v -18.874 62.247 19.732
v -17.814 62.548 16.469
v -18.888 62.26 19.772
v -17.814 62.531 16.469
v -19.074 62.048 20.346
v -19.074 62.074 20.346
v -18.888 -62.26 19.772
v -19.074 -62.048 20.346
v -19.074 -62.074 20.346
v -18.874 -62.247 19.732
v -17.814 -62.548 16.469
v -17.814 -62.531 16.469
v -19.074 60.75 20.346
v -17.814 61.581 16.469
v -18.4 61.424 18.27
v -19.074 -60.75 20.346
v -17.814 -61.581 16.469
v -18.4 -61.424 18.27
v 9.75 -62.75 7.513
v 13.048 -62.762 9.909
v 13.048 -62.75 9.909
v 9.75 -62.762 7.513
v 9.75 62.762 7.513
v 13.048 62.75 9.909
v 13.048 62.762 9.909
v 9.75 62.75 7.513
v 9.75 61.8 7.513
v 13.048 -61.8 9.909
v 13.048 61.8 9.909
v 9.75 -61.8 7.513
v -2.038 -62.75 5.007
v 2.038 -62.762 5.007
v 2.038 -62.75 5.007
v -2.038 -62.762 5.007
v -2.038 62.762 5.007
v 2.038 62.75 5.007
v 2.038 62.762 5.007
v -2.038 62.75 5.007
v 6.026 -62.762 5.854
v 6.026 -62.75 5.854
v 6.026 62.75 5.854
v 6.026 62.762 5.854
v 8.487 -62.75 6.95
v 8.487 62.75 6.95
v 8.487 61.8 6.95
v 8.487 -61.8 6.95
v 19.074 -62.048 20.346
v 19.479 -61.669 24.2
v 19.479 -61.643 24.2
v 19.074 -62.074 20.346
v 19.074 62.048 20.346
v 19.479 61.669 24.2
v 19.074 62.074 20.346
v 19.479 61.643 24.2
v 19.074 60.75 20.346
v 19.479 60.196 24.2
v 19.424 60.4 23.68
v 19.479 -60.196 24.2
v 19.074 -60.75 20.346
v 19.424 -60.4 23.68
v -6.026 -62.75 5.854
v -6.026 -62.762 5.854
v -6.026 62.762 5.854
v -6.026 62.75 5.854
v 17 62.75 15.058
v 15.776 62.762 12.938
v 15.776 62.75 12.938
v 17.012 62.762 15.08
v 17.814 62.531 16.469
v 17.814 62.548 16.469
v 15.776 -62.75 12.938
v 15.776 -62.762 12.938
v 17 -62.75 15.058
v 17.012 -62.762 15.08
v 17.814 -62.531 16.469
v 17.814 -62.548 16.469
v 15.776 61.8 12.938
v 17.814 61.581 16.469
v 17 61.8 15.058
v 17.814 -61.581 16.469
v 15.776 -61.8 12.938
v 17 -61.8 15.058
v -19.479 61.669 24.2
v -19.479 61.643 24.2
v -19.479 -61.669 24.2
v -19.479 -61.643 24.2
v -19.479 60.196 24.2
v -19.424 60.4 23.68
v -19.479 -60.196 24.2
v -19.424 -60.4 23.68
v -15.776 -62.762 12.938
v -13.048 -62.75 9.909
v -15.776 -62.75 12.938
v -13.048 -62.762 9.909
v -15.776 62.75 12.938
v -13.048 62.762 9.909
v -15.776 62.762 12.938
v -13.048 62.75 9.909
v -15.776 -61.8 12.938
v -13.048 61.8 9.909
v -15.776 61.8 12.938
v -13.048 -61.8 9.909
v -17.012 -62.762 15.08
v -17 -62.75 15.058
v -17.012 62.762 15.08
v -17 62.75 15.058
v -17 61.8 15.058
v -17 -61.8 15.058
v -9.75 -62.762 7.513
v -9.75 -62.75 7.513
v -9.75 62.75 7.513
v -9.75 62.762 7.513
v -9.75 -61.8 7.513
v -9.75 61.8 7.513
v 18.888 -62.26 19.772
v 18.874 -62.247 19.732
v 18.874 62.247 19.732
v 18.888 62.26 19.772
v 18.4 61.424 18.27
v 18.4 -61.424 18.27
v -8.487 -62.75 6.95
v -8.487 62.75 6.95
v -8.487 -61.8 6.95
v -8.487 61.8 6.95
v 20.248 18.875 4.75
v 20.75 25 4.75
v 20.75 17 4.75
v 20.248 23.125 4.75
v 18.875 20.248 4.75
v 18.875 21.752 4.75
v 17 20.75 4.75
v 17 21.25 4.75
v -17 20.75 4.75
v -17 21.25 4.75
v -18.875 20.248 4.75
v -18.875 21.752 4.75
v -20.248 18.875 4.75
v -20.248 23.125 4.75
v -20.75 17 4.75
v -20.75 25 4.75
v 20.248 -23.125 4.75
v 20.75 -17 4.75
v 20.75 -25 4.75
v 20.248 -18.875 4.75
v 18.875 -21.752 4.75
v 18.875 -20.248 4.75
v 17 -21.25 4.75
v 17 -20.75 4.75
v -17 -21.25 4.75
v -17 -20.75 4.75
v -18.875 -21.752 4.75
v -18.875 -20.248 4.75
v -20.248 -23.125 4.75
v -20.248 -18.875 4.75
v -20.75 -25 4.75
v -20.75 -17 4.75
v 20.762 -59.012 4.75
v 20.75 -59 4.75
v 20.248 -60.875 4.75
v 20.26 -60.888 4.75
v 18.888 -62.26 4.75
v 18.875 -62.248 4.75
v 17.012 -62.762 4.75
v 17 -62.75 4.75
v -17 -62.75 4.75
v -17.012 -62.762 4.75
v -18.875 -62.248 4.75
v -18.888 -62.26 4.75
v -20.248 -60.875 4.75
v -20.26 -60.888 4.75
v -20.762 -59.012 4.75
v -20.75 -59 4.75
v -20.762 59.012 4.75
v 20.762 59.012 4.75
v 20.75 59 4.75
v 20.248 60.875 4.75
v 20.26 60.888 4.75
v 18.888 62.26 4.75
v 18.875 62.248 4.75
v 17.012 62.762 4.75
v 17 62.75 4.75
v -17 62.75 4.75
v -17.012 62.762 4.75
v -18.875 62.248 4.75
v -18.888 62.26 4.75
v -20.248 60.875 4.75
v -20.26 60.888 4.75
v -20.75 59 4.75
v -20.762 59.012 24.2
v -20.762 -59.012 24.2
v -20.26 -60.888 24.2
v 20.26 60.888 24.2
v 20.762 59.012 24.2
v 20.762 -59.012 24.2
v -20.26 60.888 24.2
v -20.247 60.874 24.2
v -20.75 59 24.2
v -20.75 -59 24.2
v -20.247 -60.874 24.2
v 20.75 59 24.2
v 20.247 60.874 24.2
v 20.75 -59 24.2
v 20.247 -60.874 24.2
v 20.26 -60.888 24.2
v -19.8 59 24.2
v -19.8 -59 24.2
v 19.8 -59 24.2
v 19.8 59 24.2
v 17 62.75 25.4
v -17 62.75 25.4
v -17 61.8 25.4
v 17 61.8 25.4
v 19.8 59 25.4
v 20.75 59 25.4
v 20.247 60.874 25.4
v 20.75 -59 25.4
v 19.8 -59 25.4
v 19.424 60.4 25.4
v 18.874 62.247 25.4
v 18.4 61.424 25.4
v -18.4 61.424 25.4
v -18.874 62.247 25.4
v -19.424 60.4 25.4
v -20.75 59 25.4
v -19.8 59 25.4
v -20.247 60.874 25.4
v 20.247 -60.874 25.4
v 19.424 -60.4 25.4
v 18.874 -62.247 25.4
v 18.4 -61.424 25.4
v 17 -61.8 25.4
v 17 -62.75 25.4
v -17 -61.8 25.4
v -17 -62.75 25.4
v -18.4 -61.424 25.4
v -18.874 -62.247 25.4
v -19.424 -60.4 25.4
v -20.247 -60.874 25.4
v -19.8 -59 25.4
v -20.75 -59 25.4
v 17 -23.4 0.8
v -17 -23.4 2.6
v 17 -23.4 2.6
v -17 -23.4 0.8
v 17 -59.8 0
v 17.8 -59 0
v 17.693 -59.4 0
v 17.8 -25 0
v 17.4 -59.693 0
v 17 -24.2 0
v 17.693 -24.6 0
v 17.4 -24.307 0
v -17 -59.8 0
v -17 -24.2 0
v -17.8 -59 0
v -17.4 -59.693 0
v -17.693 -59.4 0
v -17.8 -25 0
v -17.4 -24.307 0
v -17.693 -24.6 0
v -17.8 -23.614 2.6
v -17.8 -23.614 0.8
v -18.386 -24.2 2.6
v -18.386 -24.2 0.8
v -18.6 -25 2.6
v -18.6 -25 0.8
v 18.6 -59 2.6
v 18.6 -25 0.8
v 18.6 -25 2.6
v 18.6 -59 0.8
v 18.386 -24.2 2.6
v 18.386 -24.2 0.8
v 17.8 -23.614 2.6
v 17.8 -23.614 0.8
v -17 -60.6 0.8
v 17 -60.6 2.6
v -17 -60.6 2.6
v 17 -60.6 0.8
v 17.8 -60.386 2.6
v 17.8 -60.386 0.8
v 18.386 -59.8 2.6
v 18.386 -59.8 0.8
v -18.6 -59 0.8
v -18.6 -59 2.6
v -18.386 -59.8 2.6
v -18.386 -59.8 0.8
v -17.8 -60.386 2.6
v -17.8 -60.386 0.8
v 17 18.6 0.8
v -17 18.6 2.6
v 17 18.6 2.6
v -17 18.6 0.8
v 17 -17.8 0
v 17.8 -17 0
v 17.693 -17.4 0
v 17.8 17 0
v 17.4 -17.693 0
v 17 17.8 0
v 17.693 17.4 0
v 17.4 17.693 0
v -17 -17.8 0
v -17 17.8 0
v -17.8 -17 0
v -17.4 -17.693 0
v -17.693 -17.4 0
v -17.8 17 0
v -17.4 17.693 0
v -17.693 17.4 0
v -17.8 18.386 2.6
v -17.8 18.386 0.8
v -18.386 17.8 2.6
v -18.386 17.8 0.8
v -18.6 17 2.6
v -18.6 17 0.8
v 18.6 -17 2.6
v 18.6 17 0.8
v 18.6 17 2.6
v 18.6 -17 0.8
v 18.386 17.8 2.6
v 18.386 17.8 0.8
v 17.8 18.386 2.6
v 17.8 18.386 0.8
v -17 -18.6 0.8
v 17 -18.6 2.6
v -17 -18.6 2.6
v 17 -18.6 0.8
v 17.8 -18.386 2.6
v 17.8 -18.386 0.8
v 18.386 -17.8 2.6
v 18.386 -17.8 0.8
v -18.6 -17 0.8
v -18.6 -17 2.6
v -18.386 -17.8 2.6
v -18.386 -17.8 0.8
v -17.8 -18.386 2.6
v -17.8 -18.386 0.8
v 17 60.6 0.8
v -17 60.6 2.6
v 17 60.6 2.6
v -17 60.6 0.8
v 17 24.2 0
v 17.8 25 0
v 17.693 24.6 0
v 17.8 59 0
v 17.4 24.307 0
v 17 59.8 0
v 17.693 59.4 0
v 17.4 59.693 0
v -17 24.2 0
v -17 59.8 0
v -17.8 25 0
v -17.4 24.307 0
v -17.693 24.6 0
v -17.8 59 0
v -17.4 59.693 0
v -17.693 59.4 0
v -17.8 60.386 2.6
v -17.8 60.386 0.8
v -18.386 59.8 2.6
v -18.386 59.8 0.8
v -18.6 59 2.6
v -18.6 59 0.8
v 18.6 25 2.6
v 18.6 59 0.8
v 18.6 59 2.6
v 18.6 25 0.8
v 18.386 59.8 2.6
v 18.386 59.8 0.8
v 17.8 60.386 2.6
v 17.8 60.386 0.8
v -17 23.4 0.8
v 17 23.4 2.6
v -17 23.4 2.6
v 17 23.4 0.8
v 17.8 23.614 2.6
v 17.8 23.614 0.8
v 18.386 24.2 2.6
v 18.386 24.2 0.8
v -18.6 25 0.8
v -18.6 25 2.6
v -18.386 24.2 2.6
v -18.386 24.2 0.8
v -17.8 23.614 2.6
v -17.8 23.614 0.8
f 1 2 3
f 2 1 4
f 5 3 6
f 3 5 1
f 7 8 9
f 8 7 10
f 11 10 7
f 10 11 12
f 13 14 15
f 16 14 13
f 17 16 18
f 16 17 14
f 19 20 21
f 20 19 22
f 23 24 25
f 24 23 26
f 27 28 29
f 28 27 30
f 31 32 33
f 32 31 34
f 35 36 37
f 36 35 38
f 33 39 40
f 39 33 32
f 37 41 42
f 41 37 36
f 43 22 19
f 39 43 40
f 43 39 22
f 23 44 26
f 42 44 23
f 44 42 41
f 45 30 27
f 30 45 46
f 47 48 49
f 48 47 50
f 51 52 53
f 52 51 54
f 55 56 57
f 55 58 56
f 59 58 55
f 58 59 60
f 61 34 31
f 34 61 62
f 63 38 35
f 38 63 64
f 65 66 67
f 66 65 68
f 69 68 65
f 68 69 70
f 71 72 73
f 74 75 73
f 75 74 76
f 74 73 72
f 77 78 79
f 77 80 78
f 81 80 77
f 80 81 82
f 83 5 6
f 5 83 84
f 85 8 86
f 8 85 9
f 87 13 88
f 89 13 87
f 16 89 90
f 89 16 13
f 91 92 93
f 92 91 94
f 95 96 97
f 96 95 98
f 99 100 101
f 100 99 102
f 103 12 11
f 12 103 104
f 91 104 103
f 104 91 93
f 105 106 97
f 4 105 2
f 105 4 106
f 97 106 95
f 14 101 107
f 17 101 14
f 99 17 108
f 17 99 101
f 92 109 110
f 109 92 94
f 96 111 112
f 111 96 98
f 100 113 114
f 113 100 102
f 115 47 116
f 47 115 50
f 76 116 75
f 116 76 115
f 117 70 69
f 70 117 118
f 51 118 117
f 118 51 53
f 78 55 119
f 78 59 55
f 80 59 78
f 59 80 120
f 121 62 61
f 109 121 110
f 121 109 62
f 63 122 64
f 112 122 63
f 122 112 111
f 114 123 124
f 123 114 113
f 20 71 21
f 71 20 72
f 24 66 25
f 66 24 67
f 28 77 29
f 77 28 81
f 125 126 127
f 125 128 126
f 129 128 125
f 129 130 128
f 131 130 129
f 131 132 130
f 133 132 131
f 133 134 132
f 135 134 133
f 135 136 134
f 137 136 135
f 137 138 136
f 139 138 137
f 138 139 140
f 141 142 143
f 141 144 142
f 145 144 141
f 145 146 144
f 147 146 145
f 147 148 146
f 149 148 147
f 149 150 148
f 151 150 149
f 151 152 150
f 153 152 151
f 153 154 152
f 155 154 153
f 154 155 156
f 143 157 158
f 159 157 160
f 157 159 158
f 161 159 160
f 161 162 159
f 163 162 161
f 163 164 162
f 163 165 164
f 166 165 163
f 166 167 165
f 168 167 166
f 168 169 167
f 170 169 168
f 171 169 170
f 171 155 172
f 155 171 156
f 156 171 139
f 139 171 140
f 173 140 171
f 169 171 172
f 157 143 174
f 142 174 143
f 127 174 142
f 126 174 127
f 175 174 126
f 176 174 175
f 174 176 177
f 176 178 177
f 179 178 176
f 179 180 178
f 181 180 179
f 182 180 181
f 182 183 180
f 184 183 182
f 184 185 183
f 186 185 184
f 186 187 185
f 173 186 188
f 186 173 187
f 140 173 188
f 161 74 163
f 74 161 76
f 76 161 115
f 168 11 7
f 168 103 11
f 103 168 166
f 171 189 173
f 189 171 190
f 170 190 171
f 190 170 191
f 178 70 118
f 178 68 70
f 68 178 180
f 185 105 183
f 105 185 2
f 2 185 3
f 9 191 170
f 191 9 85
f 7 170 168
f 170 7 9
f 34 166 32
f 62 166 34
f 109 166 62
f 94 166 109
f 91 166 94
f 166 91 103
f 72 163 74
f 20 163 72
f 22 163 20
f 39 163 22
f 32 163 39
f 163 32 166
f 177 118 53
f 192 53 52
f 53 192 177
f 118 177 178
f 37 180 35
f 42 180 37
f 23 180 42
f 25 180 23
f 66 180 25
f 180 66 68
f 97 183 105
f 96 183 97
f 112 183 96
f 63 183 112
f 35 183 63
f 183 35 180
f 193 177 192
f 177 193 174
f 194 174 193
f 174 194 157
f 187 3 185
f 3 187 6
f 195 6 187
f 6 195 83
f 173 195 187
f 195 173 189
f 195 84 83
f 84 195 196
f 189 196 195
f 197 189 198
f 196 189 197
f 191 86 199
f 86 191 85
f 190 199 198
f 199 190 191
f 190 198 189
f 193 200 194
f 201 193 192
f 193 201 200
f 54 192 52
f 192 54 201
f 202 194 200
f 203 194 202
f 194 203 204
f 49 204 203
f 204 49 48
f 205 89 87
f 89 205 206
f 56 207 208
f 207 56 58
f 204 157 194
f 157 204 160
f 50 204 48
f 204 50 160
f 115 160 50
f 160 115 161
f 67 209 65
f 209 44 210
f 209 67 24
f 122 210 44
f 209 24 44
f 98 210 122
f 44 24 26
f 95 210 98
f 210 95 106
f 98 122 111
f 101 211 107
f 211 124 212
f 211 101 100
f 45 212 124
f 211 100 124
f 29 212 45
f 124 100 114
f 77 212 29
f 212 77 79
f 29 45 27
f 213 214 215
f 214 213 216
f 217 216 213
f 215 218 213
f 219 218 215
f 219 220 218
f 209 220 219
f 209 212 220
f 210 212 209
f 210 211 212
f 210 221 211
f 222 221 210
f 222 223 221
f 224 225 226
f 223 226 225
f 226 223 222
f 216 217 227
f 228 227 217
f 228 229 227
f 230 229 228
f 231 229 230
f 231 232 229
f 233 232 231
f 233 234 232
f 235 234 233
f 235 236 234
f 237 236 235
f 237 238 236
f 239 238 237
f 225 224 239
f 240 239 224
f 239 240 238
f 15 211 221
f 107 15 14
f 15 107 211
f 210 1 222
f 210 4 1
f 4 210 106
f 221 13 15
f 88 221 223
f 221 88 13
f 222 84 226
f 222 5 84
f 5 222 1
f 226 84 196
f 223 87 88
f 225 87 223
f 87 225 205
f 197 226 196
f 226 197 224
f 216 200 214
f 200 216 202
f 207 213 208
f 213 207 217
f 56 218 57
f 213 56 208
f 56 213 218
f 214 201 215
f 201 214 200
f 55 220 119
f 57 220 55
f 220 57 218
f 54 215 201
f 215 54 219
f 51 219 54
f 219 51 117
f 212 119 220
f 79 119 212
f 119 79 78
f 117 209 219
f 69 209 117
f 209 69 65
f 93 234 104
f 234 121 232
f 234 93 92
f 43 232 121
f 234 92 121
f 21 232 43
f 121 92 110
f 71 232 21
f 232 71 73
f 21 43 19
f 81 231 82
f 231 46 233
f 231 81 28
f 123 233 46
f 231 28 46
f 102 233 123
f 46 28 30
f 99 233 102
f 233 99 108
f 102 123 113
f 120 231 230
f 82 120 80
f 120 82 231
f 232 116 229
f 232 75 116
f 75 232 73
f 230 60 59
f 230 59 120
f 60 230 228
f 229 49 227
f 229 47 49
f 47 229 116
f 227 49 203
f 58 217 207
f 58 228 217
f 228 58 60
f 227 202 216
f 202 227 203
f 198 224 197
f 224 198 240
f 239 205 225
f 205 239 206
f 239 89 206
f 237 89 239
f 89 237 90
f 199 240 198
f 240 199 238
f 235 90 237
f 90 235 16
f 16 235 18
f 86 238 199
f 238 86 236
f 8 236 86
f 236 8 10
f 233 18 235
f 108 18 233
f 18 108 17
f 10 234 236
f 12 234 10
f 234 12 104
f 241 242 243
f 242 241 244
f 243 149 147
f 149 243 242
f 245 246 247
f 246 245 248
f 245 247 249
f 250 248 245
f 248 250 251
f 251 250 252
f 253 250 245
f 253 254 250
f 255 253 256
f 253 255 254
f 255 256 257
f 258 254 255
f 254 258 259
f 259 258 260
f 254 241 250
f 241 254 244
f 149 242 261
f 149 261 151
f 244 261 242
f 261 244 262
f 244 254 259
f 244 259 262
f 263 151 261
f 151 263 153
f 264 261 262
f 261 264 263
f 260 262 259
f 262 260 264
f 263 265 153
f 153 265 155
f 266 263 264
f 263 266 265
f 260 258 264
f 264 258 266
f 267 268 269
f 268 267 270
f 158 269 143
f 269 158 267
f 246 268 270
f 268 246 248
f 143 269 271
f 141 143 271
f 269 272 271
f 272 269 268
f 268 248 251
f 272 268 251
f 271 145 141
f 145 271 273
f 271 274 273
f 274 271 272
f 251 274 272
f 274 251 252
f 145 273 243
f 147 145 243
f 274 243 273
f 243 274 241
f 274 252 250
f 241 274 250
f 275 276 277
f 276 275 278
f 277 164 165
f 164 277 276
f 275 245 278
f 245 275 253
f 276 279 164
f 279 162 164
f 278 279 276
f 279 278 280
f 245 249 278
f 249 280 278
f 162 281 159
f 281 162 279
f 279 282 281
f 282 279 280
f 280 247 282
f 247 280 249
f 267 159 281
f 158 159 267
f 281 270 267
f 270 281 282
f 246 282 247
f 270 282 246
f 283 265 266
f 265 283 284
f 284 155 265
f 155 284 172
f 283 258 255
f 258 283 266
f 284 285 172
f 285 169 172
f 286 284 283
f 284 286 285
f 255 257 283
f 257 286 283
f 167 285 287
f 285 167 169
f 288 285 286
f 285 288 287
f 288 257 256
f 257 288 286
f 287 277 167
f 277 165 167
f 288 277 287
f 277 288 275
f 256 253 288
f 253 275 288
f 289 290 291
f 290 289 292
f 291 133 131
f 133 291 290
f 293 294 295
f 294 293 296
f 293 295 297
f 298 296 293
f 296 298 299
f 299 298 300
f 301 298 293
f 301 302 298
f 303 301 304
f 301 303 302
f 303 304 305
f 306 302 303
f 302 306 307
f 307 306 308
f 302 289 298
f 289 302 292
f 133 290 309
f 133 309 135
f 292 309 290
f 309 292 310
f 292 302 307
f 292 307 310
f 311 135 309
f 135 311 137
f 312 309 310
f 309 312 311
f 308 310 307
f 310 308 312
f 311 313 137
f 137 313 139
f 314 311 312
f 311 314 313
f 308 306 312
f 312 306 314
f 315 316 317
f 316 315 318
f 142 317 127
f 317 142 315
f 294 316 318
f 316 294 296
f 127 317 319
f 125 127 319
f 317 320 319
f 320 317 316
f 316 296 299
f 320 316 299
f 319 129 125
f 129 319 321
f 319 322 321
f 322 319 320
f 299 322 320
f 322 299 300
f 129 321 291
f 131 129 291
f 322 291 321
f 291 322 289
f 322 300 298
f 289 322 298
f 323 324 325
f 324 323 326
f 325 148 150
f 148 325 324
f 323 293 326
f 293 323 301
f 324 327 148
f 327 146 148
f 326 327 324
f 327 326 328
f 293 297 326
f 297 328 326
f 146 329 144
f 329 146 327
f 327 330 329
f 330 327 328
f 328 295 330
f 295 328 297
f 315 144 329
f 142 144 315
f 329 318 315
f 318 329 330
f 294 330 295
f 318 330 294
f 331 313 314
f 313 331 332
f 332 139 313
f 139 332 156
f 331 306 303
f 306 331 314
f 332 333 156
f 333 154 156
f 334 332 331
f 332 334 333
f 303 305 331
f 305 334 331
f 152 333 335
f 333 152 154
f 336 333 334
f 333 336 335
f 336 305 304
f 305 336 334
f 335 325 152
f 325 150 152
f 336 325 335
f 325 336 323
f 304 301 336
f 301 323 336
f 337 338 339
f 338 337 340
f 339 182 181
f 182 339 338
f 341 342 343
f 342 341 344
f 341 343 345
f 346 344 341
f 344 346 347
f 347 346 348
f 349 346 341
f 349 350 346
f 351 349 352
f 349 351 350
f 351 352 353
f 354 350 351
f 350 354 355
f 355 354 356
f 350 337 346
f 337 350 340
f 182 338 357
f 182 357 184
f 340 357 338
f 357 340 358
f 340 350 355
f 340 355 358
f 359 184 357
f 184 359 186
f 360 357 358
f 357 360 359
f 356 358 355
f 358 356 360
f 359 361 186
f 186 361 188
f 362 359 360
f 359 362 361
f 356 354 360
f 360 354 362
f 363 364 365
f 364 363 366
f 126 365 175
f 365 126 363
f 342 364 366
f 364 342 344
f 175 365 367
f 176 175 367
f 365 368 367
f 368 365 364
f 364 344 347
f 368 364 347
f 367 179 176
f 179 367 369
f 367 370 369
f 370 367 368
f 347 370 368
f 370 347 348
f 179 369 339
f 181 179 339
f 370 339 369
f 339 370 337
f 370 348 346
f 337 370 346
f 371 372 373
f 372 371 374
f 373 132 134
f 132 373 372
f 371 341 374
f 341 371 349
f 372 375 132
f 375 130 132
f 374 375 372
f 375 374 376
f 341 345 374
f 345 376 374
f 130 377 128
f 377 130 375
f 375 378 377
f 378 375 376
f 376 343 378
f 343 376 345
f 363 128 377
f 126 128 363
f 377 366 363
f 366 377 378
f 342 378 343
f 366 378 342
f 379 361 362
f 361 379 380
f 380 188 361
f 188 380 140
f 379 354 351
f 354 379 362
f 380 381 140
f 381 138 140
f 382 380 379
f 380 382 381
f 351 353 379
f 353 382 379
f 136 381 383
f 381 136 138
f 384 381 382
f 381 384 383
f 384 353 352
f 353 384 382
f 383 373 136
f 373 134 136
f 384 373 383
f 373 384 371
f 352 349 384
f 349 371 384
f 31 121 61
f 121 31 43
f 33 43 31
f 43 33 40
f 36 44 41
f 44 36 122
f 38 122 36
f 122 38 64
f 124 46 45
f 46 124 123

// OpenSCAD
use <entrypoint.scad>


custom_bin(gridx = 1, gridy = 3, gridz = 3, cdivx=1, cdivy=1, divy=0, divx=0, cd=39, height_internal=0, c_depth=1); 
